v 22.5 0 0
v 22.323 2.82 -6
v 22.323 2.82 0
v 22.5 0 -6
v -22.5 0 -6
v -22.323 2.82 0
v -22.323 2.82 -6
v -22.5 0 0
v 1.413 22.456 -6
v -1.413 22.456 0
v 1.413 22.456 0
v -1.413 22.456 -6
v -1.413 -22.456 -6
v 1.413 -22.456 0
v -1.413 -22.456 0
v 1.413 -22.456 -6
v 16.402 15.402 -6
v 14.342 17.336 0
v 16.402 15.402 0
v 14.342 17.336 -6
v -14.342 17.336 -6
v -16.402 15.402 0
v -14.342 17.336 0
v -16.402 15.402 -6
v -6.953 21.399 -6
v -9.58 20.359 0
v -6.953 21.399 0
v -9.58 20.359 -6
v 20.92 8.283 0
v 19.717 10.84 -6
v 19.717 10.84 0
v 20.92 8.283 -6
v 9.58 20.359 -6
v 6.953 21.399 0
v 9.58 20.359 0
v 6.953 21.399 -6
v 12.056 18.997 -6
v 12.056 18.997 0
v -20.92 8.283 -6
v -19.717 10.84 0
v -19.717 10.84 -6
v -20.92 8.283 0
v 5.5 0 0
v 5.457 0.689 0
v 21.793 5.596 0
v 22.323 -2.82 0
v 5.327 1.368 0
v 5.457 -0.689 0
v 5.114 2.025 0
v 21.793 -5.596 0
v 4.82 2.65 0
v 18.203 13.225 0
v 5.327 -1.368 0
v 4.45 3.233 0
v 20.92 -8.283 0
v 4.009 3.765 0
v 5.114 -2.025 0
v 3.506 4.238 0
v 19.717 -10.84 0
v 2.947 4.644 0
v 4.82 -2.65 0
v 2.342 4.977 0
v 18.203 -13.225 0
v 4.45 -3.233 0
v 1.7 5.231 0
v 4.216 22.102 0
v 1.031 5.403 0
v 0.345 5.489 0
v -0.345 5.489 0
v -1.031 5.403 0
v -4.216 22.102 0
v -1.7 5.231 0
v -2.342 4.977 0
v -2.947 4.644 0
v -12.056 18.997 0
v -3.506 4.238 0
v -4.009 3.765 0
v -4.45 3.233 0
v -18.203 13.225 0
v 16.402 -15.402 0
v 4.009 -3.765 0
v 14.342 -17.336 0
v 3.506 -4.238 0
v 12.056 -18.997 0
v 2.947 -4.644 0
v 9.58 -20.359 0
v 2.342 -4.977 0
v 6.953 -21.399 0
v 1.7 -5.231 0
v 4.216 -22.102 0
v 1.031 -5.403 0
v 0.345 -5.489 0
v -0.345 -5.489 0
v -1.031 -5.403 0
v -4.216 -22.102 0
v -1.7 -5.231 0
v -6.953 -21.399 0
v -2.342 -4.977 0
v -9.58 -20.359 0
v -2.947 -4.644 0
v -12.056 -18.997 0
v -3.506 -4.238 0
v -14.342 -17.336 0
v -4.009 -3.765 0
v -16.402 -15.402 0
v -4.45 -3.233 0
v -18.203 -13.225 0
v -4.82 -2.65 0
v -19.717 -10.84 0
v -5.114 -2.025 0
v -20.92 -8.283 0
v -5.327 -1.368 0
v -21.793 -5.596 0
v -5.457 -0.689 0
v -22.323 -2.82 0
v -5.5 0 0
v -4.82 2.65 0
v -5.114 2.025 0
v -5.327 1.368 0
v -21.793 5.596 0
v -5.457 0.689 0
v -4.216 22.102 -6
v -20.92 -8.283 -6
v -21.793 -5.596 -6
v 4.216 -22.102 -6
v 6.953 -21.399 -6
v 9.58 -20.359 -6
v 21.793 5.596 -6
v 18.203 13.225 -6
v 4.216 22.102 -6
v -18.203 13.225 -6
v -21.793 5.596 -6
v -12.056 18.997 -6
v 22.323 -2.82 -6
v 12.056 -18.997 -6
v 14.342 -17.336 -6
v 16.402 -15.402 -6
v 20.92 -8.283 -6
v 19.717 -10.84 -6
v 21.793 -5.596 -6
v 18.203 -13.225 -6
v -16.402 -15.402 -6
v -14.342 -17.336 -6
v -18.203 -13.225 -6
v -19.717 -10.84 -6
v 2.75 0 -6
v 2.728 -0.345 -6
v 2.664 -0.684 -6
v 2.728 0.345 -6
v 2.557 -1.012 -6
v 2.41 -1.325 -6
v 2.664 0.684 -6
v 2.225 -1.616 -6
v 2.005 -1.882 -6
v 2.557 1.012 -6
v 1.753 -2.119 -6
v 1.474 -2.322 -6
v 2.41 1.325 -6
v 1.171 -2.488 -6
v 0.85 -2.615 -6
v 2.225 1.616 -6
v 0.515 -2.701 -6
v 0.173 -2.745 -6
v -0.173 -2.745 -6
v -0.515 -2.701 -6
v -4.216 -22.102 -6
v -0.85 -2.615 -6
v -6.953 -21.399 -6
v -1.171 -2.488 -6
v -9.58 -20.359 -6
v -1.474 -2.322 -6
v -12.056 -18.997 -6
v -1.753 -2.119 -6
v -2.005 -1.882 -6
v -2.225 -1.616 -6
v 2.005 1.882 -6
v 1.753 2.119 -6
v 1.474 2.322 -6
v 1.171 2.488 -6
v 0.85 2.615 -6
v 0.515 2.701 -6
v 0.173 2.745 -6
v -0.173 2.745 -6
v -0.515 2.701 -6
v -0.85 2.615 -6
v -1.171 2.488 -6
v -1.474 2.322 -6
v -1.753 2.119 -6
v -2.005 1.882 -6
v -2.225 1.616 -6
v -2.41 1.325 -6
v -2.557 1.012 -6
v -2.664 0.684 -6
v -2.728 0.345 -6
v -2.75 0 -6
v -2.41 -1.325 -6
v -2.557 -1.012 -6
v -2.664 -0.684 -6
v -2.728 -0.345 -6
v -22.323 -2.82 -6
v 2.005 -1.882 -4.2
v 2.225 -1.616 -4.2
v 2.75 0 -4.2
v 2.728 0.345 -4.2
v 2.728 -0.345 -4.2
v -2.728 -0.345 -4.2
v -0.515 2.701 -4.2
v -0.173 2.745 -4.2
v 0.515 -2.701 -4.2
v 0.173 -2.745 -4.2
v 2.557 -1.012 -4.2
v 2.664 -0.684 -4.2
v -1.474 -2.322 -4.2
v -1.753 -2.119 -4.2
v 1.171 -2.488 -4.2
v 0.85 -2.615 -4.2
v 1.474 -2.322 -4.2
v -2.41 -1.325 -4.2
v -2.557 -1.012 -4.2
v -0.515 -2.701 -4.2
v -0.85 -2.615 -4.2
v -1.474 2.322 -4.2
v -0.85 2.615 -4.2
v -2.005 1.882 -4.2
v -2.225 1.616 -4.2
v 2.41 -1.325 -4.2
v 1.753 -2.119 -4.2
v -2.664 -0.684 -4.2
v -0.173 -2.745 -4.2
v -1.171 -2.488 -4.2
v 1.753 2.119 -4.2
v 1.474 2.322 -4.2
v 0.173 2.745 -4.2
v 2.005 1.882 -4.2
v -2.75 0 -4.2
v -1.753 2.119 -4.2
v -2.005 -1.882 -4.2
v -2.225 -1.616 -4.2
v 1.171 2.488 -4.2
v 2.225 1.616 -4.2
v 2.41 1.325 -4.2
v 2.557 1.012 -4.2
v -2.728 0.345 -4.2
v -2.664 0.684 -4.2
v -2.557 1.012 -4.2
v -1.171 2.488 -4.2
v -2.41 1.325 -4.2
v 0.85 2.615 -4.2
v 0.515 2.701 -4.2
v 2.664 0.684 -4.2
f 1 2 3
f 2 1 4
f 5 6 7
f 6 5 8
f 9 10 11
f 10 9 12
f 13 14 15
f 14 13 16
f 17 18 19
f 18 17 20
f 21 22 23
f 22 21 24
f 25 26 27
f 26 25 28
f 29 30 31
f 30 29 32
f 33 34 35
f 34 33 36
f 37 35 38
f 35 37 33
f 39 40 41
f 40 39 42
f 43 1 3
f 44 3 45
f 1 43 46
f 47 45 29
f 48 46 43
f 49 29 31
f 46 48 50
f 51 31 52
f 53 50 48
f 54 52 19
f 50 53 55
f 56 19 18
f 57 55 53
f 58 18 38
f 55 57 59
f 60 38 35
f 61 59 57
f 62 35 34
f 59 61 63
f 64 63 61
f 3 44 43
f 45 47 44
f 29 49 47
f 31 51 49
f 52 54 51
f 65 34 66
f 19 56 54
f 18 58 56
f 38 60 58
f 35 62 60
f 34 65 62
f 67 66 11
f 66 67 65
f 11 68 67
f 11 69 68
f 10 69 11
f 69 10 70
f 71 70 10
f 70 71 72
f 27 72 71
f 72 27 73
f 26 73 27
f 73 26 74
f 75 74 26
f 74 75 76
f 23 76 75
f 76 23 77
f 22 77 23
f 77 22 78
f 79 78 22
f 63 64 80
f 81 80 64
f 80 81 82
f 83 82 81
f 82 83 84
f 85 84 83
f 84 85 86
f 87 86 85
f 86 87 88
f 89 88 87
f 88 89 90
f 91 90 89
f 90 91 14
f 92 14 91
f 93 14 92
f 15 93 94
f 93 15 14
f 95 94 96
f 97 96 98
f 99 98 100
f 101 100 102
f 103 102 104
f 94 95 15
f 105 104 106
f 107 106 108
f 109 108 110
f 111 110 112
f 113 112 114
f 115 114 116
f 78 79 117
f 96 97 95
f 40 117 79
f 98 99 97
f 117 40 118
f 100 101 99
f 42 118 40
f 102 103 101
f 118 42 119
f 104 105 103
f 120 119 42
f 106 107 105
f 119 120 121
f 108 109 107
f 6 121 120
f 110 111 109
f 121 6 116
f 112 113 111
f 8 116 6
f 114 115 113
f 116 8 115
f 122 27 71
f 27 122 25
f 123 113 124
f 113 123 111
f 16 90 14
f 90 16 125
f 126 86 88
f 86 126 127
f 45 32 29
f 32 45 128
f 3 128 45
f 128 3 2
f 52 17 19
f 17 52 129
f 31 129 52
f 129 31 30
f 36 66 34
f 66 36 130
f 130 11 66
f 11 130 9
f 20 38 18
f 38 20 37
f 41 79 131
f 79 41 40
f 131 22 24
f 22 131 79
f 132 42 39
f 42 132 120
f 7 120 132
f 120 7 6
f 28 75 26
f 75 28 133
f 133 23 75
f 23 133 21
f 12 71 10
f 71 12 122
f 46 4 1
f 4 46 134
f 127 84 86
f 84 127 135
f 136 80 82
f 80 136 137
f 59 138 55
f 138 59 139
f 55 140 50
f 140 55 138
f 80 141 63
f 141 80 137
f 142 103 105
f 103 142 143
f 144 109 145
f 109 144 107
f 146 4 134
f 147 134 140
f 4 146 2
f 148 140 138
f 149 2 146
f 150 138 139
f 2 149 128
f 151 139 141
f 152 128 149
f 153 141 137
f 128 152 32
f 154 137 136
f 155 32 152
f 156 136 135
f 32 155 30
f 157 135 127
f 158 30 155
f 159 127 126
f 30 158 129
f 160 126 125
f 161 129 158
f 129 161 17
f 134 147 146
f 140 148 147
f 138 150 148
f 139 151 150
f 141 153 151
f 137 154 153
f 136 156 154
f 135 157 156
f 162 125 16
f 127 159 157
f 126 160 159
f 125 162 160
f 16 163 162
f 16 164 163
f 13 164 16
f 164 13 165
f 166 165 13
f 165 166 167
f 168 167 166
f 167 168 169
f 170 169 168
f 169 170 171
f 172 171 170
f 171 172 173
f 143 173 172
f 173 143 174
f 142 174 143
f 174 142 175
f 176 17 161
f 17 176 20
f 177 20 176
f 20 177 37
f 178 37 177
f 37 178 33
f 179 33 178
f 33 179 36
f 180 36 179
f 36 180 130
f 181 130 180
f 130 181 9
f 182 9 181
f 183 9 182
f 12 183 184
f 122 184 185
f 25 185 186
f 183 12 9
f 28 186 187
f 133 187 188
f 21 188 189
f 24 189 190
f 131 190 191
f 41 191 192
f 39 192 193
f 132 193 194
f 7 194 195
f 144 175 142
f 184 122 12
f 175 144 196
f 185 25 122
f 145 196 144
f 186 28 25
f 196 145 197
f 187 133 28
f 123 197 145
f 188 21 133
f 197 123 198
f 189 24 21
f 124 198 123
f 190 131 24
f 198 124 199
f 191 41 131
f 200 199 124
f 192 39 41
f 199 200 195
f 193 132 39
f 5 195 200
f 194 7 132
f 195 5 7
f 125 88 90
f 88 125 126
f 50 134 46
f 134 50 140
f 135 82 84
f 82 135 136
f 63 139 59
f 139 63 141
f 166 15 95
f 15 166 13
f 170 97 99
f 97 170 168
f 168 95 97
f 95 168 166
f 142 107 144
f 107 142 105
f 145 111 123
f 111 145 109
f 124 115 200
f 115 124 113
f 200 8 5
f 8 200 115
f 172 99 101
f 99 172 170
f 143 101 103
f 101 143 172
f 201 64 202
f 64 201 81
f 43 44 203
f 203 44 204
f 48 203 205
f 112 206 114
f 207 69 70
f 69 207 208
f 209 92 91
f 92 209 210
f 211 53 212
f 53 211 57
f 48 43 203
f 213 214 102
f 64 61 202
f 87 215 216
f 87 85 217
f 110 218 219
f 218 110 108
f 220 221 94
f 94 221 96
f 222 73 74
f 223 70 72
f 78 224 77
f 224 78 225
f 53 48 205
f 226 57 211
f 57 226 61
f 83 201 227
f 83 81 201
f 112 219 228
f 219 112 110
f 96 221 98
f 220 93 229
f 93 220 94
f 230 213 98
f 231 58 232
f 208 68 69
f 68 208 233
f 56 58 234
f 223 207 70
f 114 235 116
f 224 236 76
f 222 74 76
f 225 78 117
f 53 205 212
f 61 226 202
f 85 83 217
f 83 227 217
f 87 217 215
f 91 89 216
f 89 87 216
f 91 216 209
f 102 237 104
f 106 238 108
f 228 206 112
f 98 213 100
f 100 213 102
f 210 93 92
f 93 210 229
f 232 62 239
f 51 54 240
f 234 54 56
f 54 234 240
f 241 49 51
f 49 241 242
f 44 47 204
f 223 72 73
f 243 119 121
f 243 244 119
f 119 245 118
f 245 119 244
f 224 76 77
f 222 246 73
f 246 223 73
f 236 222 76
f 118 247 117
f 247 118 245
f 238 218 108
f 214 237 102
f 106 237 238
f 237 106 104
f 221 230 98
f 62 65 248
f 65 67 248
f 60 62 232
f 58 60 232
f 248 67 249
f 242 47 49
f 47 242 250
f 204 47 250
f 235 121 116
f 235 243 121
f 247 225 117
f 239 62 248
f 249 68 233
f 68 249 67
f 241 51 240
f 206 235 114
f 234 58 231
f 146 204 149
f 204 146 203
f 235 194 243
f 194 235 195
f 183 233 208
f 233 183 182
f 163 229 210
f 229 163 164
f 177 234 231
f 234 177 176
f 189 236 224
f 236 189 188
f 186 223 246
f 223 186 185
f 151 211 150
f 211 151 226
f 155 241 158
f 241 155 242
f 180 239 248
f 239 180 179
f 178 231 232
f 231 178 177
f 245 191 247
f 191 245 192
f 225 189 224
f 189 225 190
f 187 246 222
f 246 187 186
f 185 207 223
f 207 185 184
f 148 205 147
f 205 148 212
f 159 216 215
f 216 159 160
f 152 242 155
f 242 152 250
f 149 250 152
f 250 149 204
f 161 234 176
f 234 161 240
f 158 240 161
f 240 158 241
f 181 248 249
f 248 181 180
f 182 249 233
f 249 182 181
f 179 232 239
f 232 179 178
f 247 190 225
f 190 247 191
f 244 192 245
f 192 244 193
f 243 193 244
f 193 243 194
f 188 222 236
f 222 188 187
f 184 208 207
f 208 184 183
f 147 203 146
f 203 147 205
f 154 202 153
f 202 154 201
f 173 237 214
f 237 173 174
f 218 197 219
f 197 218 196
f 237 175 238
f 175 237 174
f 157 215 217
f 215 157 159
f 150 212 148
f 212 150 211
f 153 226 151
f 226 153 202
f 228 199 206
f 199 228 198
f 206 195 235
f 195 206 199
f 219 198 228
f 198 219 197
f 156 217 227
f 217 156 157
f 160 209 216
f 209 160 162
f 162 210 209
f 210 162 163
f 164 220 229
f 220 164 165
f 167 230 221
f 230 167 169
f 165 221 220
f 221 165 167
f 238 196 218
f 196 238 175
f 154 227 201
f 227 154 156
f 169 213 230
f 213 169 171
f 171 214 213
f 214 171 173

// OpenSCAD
$fn = 50;


difference() {
	union() {
		translate(v = [0, 0, -6.0000000000]) {
			cylinder(h = 6, r = 22.5000000000);
		}
		translate(v = [0, 0, -6.0000000000]) {
			cylinder(h = 6, r = 2.8750000000);
		}
	}
	union() {
		translate(v = [0, 0, 0]) {
			rotate(a = [0, 0, 0]) {
				difference() {
					union() {
						translate(v = [0, 0, -6.0000000000]) {
							cylinder(h = 6, r = 2.2500000000);
						}
						translate(v = [0, 0, -4.2000000000]) {
							cylinder(h = 4.2000000000, r1 = 2.7500000000, r2 = 5.5000000000);
						}
						translate(v = [0, 0, -6.0000000000]) {
							cylinder(h = 6, r = 2.7500000000);
						}
						translate(v = [0, 0, -6.0000000000]) {
							cylinder(h = 6, r = 2.2500000000);
						}
					}
					union();
				}
			}
		}
	}
}
